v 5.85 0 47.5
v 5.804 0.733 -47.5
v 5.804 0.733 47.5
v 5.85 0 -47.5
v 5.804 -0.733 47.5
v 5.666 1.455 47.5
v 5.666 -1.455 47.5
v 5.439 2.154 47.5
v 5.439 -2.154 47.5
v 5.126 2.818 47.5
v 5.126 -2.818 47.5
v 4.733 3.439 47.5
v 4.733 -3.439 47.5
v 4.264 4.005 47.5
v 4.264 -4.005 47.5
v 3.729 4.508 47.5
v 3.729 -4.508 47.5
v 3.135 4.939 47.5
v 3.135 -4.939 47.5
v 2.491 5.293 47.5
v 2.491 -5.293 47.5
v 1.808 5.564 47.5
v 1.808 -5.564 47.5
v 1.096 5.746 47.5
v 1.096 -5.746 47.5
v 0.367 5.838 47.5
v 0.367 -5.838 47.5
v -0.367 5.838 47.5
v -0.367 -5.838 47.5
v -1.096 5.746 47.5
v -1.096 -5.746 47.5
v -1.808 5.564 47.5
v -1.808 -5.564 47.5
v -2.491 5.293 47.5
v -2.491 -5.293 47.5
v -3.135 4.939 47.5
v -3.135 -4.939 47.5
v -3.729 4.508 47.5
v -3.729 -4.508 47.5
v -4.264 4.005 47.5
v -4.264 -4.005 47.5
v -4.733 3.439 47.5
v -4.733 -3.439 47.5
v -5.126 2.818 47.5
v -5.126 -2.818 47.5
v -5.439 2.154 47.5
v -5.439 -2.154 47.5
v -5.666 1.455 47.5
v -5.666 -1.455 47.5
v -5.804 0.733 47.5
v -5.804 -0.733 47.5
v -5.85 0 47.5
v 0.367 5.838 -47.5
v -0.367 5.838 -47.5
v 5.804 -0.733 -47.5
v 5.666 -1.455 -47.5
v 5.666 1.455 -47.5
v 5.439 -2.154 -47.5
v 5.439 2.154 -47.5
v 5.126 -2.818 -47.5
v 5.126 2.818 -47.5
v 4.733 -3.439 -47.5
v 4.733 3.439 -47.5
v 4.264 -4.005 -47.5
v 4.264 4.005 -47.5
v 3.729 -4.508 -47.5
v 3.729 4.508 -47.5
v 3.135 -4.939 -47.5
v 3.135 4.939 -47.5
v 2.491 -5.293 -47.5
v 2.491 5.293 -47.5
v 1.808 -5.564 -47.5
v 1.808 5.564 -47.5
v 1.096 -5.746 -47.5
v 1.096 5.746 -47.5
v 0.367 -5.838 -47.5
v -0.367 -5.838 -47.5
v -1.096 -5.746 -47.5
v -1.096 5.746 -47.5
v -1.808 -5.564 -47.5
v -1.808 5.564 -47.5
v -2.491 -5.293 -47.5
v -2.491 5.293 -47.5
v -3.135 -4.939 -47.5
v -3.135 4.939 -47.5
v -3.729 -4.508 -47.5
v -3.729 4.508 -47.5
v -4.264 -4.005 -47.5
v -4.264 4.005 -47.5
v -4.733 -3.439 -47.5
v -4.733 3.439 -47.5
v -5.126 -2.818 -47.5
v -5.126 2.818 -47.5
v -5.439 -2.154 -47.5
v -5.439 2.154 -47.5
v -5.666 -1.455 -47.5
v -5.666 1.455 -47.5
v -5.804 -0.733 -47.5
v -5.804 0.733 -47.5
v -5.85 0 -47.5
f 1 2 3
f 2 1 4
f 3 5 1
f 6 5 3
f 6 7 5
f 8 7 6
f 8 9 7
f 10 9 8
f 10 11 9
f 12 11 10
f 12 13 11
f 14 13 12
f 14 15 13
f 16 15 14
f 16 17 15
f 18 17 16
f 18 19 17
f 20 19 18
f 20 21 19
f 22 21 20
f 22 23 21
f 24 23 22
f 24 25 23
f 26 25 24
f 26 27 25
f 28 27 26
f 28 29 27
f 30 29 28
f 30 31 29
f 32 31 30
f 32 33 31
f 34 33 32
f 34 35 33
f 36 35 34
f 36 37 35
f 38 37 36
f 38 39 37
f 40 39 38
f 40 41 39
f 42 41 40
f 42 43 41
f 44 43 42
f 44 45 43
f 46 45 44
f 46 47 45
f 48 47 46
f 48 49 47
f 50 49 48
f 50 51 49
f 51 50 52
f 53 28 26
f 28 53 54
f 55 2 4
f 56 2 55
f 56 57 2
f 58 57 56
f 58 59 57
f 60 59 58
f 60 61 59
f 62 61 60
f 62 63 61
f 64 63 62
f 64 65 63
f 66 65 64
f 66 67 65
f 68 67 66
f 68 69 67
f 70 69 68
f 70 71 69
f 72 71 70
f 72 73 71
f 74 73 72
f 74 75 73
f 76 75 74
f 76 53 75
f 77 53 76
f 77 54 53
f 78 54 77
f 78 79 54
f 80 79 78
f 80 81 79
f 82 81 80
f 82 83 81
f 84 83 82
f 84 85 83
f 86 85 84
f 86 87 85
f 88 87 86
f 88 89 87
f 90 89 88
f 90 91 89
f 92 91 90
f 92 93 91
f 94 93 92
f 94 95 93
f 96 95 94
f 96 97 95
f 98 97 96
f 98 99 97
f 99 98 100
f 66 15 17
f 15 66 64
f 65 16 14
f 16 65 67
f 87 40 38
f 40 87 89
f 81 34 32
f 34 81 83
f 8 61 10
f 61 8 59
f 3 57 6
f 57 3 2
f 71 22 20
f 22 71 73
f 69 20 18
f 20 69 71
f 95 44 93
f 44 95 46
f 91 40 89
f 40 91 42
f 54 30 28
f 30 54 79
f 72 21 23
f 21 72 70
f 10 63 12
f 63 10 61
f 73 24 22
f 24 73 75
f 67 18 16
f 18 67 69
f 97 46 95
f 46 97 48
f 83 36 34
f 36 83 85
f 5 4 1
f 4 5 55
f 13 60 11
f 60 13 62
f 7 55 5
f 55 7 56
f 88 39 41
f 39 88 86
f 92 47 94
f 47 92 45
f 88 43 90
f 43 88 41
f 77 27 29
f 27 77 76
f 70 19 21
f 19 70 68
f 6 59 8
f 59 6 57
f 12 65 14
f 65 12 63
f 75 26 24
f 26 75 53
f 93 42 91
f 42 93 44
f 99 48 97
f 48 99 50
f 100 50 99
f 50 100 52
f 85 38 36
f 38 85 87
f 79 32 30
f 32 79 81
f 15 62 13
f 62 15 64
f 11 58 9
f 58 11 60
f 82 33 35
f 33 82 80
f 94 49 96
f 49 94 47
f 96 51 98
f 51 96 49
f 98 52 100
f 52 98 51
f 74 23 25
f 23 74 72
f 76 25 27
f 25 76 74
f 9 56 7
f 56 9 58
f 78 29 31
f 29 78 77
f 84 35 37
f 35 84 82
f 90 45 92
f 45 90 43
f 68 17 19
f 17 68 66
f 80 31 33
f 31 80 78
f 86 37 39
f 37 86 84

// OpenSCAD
$fn = 50;


difference() {
	union() {
		translate(v = [0, 0, -47.5000000000]) {
			cylinder(h = 95, r = 5.8500000000);
		}
	}
	union() {
		translate(v = [0, 0, -100.0000000000]) {
			cylinder(h = 200, r = 0);
		}
	}
}
